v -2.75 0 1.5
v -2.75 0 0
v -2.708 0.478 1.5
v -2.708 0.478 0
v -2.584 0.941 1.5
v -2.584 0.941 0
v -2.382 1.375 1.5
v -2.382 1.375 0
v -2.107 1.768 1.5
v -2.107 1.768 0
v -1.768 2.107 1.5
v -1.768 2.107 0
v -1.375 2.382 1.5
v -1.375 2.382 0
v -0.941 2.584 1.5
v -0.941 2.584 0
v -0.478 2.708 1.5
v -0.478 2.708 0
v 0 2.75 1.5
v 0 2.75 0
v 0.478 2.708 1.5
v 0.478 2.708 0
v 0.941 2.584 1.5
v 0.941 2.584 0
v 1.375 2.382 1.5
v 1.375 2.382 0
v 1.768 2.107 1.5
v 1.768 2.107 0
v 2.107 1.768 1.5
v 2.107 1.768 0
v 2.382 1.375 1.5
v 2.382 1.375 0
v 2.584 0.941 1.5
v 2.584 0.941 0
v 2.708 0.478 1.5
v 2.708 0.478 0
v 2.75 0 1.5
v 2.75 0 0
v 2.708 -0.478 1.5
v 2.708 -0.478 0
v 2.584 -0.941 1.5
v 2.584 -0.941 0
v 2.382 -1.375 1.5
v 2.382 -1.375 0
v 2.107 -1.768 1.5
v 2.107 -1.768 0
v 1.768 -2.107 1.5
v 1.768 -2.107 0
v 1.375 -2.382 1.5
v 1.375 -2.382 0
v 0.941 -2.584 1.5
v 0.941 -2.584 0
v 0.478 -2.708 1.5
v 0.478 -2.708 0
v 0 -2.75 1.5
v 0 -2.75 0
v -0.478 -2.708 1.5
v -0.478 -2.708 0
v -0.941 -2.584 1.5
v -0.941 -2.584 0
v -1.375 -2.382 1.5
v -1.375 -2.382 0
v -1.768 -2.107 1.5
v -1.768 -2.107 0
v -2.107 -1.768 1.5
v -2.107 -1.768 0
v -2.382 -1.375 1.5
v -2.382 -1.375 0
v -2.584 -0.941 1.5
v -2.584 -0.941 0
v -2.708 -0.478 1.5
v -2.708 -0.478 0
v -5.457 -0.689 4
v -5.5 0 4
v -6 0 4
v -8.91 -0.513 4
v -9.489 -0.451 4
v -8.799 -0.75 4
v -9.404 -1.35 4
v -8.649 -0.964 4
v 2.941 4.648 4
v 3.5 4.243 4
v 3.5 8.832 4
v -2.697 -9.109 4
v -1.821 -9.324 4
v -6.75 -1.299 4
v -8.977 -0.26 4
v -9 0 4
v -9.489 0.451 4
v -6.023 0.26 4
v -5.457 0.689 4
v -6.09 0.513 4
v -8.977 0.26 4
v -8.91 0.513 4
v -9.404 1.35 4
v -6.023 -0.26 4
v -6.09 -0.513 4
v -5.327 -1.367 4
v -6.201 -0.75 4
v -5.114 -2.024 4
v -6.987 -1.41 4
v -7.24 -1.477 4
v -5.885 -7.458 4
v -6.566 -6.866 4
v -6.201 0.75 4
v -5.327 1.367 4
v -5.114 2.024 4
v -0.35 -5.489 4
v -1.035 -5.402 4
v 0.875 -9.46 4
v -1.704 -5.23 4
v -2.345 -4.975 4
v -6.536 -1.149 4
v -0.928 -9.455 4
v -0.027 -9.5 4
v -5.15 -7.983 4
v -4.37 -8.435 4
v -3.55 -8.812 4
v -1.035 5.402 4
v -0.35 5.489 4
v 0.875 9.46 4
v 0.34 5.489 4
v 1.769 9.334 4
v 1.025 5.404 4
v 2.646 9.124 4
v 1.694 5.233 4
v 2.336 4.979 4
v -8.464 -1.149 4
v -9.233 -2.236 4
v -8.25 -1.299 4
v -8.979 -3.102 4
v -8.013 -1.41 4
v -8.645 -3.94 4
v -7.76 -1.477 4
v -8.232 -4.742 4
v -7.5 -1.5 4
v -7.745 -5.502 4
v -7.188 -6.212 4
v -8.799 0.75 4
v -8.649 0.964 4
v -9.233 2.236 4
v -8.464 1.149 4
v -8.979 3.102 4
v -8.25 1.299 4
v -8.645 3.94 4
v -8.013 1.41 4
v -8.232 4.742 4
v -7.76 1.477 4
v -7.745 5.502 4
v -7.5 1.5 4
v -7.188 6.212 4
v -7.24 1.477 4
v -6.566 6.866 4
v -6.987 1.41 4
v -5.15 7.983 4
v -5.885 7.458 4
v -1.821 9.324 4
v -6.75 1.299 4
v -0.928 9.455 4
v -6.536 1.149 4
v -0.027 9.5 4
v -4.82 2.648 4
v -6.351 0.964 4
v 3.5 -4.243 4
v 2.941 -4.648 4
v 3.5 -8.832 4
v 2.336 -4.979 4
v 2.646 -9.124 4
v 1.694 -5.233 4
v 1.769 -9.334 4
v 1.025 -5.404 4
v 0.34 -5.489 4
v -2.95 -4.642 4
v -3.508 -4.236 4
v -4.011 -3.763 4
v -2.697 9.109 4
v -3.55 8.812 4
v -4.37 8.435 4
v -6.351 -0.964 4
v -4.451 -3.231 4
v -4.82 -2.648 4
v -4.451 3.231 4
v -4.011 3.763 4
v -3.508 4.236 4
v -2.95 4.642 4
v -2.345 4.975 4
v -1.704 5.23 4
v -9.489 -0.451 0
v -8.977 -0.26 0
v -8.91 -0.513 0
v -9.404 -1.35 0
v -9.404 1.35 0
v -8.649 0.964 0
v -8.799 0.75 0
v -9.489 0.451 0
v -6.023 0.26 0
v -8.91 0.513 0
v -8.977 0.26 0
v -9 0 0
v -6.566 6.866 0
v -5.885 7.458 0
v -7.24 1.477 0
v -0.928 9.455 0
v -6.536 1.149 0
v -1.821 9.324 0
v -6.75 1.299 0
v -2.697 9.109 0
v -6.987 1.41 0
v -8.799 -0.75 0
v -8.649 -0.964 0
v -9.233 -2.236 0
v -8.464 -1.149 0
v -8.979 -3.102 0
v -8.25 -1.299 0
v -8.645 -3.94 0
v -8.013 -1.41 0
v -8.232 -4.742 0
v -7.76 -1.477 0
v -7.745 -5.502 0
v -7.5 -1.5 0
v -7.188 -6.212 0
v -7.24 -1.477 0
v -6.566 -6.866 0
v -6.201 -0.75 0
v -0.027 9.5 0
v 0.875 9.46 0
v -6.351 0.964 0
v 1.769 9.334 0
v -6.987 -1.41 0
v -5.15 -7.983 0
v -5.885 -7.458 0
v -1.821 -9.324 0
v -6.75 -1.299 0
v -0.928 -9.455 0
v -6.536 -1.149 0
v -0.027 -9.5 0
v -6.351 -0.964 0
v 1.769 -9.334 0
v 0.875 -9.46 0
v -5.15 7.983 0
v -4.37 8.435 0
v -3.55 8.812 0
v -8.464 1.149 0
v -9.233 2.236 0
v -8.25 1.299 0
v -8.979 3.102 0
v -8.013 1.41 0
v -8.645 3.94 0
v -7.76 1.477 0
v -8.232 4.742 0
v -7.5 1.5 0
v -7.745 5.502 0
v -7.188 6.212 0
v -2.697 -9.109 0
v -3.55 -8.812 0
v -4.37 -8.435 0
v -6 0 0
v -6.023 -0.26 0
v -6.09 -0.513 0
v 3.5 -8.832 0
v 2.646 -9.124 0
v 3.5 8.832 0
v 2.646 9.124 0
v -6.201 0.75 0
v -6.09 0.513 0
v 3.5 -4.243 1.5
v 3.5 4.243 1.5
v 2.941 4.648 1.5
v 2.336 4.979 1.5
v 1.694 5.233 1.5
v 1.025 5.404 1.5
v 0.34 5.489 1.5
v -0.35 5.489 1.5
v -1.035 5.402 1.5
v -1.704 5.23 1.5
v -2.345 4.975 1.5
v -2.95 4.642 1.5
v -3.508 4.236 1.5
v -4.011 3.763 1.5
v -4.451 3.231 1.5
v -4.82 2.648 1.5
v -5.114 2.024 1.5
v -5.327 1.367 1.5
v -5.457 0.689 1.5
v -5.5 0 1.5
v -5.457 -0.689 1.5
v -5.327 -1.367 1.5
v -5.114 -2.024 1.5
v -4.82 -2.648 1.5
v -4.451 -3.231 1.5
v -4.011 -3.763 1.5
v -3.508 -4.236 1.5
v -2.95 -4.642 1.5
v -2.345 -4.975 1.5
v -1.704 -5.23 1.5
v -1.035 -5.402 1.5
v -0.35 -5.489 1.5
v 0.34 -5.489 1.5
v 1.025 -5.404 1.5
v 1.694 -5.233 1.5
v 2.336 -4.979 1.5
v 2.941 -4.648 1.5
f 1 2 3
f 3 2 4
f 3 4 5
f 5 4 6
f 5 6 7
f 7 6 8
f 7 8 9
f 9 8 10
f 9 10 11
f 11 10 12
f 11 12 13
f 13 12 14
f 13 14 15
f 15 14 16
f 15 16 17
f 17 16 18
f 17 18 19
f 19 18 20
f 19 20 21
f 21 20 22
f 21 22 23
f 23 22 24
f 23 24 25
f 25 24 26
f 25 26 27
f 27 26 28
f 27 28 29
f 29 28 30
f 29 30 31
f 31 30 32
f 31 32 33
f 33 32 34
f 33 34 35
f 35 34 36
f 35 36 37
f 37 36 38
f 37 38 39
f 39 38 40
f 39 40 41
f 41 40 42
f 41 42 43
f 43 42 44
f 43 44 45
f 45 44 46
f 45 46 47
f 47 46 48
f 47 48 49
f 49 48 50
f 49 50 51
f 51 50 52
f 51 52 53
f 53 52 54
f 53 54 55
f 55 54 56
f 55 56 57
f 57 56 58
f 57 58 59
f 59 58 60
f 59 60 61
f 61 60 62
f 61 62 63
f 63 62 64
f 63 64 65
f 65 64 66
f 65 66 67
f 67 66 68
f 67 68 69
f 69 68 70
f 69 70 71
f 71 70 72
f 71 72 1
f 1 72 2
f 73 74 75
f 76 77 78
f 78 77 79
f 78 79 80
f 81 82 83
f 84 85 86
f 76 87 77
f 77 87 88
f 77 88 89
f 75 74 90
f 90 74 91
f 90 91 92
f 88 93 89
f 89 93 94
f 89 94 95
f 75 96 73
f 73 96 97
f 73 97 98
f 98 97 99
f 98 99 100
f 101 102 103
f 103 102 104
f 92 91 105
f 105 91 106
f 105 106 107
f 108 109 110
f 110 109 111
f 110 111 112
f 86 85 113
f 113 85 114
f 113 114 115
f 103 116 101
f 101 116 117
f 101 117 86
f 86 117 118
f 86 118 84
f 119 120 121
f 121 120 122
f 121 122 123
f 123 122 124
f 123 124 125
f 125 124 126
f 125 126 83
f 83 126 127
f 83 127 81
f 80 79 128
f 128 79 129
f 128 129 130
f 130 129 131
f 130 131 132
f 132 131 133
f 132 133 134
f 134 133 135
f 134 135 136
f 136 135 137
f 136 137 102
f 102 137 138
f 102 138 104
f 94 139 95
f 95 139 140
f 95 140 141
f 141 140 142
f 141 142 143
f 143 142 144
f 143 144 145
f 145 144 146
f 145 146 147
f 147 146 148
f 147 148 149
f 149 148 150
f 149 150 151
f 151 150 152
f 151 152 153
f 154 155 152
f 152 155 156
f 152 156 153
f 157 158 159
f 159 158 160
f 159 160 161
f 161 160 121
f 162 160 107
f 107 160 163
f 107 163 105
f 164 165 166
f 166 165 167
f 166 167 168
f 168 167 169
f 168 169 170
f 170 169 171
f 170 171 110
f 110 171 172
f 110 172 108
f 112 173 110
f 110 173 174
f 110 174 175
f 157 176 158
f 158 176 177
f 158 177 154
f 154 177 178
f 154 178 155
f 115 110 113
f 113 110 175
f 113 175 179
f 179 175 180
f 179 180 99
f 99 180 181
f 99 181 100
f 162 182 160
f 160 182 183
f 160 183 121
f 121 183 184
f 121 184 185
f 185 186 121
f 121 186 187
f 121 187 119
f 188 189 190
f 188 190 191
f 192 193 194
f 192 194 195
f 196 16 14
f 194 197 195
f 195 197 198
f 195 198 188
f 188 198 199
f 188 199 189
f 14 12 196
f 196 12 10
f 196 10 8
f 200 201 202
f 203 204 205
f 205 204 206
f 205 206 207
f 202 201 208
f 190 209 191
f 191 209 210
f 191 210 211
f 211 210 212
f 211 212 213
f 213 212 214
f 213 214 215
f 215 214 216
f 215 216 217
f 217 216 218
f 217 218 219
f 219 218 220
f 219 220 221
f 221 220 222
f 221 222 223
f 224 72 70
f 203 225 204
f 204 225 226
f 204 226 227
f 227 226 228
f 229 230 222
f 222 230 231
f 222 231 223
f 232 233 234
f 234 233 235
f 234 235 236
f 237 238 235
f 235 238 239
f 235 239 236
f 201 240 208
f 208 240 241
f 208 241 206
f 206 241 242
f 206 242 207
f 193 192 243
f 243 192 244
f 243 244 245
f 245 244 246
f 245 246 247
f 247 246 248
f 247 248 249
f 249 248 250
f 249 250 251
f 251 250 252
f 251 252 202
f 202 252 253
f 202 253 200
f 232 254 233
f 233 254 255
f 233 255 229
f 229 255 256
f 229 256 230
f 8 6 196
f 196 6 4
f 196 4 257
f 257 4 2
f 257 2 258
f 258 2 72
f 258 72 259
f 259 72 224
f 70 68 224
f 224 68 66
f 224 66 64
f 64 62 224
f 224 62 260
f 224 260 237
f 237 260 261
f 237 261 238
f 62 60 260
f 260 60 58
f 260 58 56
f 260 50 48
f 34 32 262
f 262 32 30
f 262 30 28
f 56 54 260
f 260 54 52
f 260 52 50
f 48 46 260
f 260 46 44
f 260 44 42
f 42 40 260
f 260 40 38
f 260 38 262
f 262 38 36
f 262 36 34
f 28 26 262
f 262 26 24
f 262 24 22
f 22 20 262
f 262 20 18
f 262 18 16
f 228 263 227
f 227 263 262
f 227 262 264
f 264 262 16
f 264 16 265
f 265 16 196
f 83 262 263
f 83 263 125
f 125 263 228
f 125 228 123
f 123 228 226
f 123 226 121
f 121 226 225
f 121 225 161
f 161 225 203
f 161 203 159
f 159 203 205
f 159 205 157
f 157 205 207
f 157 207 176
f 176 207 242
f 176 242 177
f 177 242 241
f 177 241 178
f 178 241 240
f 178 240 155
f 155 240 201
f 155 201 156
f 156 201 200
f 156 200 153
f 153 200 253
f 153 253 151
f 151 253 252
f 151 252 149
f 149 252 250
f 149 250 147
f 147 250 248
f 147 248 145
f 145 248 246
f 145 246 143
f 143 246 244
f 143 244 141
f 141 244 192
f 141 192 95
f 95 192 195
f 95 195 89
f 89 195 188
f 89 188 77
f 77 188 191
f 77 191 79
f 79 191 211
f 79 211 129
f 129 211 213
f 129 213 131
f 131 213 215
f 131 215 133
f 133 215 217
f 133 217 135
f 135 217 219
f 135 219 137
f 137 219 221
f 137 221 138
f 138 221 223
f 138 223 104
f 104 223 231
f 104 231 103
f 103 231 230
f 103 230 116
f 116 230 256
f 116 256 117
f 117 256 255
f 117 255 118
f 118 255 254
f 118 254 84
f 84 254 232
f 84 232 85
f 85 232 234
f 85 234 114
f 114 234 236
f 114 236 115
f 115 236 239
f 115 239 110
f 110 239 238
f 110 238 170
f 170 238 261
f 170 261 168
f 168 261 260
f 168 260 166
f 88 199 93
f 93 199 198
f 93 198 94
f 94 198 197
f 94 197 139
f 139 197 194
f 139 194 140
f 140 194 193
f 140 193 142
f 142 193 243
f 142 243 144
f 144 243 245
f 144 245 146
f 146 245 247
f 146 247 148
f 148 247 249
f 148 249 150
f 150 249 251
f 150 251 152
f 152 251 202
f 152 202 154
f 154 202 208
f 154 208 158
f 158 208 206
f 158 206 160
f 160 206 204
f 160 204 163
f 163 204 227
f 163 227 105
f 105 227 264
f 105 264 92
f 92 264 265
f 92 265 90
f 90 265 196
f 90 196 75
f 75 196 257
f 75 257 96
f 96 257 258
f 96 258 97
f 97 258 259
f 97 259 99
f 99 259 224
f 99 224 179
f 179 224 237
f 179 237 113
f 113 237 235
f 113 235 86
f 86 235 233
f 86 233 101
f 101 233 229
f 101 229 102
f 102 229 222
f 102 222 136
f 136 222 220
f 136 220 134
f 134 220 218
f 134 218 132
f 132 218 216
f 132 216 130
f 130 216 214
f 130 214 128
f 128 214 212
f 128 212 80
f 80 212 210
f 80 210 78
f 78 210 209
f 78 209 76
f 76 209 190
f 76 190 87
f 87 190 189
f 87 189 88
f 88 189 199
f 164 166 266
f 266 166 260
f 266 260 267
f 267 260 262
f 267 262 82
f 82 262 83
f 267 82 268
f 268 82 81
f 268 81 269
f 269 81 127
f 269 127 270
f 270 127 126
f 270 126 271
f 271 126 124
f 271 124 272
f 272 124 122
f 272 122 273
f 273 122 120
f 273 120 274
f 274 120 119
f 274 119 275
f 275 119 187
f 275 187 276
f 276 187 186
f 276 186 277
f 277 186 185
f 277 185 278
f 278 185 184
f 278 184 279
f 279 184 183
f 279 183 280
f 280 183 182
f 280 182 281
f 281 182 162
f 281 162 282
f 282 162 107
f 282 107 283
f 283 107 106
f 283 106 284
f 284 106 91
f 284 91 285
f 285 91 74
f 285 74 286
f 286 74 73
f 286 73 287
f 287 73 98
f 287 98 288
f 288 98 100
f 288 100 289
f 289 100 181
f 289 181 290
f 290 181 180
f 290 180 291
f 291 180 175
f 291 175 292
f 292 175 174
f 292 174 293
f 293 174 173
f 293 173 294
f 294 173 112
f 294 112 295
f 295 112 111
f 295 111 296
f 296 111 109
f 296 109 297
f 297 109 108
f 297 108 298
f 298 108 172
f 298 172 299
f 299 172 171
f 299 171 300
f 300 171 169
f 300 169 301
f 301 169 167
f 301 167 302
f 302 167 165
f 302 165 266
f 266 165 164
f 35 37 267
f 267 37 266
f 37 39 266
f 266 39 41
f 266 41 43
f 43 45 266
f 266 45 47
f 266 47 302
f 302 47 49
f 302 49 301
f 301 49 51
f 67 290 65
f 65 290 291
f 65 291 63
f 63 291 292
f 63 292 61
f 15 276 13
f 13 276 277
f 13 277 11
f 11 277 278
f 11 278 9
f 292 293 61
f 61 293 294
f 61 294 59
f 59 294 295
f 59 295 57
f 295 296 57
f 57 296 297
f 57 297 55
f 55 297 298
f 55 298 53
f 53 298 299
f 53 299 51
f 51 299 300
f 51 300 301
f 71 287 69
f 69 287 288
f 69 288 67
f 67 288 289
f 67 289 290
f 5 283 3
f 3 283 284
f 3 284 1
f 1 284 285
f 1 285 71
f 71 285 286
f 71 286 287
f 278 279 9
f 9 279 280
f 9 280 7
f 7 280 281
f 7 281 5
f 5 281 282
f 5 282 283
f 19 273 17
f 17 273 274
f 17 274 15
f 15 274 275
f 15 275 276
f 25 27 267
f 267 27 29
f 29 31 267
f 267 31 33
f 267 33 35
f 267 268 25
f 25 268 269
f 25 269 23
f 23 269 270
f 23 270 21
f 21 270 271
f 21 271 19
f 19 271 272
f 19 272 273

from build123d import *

# Parameters (mm, degrees)
ESQUISSE1_R             = 9.5
ESQUISSE1_R_2           = 2.75
ESQUISSE1_R_3           = 1.5
BOSS_EXTRU_1_DEPTH      = 4
ESQUISSE2_W             = 6
ESQUISSE2_H             = 17.663521732
ENL_V_MAT_EXTRU_1_DEPTH = 15.017845769
ESQUISSE3_R             = 5.5
ENL_V_MAT_EXTRU_2_DEPTH = 2.5


with BuildPart() as part:
    # Esquisse1 → Boss.-Extru.1 (new body)
    with BuildSketch(Plane.XY):
        Circle(ESQUISSE1_R)
        Circle(ESQUISSE1_R_2, mode=Mode.SUBTRACT)
        with Locations((-7.5, 0)):
            Circle(ESQUISSE1_R_3, mode=Mode.SUBTRACT)
    extrude(amount=BOSS_EXTRU_1_DEPTH)

    # Esquisse2 → Enlèv. mat.-Extru.1 (cut, through all)
    with BuildSketch(Plane.XY.offset(4)):
        with Locations((6.5, 0)):
            Rectangle(ESQUISSE2_W, ESQUISSE2_H)
    extrude(amount=-ENL_V_MAT_EXTRU_1_DEPTH, mode=Mode.SUBTRACT)

    # Esquisse3 → Enlèv. mat.-Extru.2 (cut)
    with BuildSketch(Plane.XY.offset(4)):
        Circle(ESQUISSE3_R)
    extrude(amount=-ENL_V_MAT_EXTRU_2_DEPTH, mode=Mode.SUBTRACT)


solid = part.part
